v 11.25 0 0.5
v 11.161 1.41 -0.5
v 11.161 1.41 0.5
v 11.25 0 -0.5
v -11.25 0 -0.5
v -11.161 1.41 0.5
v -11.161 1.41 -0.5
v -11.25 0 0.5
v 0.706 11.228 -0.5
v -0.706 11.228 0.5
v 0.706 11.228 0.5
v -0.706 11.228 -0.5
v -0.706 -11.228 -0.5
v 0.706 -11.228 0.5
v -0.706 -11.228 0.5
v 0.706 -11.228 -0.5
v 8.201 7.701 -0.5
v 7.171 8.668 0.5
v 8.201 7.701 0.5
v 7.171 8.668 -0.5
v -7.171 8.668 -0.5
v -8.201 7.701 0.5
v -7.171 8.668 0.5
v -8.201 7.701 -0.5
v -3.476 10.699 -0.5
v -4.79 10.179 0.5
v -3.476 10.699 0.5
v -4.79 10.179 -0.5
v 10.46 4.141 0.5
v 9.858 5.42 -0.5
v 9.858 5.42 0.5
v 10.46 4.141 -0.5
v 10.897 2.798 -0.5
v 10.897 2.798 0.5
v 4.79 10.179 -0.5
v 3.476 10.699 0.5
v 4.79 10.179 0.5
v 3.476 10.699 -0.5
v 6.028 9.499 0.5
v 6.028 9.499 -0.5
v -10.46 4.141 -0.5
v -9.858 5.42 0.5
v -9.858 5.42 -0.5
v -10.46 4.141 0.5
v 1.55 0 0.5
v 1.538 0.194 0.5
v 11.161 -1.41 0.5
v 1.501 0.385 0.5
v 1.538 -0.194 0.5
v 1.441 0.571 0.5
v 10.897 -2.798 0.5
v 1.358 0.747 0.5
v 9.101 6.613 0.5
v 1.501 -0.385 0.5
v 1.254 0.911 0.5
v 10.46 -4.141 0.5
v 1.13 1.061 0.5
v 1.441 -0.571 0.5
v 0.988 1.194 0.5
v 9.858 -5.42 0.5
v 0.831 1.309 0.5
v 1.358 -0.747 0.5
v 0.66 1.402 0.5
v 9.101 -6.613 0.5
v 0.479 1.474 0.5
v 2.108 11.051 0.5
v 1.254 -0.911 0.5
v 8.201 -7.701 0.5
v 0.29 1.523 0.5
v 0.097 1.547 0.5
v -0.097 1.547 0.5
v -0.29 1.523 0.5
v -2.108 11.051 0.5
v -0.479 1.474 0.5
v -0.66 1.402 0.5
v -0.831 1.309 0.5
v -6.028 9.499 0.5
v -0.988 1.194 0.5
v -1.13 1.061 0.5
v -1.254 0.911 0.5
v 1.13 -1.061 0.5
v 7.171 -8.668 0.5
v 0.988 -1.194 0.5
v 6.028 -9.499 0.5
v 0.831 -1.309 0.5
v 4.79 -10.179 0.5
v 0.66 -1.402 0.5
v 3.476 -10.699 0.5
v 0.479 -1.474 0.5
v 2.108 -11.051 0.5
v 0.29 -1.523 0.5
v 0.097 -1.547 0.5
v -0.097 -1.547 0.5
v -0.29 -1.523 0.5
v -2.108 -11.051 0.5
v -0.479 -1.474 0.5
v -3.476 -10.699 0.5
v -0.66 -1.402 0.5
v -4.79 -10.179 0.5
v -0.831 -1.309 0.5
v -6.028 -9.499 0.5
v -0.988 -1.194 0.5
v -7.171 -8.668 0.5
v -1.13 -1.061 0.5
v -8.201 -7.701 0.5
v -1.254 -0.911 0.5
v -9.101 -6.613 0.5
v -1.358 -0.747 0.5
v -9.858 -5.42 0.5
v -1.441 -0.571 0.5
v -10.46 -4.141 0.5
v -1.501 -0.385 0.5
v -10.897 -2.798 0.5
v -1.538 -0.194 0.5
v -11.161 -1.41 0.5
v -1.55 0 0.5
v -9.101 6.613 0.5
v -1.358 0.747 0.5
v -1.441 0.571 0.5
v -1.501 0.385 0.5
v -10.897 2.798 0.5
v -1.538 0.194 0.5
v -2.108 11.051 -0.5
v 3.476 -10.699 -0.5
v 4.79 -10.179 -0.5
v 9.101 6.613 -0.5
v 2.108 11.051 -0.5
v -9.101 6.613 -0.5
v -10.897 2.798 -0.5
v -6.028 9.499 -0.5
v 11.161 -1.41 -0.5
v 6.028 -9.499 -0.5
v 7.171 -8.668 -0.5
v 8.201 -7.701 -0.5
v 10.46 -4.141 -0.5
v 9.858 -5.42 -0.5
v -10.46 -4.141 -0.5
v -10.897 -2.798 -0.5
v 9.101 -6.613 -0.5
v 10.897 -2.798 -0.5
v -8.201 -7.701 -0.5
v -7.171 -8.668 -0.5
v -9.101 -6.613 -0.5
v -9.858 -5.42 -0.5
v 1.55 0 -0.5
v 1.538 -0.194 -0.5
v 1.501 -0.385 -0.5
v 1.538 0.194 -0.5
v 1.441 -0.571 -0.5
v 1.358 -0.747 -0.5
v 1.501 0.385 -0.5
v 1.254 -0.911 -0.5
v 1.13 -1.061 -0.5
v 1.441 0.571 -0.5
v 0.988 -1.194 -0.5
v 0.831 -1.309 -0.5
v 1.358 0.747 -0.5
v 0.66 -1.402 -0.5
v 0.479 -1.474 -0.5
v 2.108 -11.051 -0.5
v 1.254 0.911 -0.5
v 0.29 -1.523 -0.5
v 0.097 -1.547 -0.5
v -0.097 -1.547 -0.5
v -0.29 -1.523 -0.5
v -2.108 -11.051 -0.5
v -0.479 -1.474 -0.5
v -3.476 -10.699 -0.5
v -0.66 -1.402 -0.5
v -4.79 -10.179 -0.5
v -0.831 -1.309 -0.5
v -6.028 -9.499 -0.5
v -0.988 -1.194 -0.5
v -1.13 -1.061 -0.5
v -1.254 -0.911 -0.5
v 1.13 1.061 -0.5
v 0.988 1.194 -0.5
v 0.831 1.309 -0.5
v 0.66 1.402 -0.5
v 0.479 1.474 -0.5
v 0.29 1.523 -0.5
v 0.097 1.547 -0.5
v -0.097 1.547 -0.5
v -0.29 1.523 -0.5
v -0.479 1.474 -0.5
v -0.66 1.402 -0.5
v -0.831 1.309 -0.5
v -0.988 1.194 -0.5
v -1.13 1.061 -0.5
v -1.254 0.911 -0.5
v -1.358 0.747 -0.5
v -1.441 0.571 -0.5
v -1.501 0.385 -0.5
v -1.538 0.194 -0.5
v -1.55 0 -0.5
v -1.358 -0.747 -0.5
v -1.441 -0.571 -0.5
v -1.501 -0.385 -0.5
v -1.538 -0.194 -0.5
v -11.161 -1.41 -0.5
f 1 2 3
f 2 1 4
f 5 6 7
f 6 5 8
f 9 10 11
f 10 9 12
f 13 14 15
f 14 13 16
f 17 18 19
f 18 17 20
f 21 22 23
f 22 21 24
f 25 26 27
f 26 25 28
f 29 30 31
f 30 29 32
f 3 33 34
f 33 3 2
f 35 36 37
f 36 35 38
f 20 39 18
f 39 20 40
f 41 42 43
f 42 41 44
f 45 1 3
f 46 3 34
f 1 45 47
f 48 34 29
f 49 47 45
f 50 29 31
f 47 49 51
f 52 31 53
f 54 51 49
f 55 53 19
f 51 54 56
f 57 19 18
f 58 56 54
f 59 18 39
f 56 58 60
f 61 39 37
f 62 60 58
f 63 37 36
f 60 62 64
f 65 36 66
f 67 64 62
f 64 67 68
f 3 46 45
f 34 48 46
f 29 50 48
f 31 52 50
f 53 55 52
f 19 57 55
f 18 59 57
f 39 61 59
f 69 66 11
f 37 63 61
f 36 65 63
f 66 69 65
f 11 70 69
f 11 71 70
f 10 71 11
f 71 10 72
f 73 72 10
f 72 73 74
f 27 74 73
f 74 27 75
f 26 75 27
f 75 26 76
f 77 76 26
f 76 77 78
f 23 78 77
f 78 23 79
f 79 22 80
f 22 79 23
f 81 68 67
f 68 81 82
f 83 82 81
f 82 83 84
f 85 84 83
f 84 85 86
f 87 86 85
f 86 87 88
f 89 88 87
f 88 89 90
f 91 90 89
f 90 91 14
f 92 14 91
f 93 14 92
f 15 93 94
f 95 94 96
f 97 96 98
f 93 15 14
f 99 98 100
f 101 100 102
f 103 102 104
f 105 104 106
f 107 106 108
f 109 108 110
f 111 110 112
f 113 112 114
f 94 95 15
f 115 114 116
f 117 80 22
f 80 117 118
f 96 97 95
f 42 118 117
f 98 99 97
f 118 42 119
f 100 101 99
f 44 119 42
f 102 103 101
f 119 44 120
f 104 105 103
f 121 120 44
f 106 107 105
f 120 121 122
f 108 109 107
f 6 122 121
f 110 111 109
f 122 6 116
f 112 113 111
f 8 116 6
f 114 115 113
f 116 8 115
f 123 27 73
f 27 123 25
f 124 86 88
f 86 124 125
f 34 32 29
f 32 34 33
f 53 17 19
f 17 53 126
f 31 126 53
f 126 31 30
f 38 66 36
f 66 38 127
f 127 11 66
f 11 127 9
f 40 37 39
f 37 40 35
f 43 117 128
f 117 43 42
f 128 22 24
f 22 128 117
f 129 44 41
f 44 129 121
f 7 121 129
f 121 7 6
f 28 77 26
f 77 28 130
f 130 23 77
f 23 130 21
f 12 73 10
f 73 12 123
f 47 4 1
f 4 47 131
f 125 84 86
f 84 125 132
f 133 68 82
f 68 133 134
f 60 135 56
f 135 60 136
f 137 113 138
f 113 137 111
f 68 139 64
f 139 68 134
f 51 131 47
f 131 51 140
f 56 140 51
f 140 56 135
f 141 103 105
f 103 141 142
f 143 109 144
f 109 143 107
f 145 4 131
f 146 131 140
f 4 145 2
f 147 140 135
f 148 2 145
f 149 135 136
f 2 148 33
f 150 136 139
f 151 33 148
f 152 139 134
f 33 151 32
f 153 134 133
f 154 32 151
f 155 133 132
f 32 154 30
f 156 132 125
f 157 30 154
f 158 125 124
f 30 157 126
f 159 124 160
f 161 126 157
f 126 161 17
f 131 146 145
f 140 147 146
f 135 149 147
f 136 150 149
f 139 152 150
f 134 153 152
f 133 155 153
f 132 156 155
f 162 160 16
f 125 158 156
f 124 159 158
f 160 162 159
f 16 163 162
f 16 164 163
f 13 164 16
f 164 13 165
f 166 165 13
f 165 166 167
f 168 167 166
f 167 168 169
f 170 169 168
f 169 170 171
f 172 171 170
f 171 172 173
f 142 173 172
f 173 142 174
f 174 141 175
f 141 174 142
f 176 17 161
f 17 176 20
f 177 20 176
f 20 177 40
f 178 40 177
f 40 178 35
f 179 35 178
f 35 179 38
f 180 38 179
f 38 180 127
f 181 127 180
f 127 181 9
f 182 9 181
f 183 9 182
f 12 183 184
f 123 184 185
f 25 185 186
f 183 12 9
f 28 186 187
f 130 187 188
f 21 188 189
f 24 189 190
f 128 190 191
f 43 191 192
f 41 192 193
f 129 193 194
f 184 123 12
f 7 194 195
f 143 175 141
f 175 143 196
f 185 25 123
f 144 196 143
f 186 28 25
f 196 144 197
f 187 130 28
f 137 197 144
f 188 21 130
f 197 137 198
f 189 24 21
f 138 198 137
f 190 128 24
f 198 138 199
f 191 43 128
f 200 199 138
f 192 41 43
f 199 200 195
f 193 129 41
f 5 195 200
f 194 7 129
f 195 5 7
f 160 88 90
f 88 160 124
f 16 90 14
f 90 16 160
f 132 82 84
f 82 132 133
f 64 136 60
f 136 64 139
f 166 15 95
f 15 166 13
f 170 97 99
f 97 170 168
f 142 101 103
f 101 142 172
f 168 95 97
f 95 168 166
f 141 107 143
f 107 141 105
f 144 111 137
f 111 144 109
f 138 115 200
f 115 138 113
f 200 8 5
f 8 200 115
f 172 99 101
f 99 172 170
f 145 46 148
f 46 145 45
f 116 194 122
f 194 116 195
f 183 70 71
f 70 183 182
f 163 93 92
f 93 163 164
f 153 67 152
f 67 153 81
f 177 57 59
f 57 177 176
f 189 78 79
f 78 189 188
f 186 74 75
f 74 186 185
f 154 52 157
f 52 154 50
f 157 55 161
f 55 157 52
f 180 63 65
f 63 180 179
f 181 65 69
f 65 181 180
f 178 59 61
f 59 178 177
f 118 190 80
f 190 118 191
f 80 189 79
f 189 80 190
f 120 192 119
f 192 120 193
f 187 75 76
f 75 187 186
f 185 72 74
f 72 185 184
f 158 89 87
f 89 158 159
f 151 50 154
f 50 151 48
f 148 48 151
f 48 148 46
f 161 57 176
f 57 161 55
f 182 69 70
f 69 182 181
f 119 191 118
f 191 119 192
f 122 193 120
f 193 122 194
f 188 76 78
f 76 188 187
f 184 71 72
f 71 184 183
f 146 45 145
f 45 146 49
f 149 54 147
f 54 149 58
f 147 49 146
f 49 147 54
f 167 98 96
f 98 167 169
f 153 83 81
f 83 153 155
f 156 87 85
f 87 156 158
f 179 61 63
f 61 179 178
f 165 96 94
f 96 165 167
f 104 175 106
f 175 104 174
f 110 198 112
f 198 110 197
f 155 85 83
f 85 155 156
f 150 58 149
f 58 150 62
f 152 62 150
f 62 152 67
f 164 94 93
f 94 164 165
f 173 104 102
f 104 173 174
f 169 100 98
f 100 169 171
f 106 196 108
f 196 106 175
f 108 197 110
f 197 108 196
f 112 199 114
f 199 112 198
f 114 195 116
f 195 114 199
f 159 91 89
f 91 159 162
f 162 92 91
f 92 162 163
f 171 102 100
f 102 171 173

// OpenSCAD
$fn = 50;


difference() {
	union() {
		translate(v = [0, 0, -0.5000000000]) {
			cylinder(h = 1, r = 11.2500000000);
		}
	}
	union() {
		translate(v = [0, 0, -100.0000000000]) {
			cylinder(h = 200, r = 1.5500000000);
		}
	}
}
